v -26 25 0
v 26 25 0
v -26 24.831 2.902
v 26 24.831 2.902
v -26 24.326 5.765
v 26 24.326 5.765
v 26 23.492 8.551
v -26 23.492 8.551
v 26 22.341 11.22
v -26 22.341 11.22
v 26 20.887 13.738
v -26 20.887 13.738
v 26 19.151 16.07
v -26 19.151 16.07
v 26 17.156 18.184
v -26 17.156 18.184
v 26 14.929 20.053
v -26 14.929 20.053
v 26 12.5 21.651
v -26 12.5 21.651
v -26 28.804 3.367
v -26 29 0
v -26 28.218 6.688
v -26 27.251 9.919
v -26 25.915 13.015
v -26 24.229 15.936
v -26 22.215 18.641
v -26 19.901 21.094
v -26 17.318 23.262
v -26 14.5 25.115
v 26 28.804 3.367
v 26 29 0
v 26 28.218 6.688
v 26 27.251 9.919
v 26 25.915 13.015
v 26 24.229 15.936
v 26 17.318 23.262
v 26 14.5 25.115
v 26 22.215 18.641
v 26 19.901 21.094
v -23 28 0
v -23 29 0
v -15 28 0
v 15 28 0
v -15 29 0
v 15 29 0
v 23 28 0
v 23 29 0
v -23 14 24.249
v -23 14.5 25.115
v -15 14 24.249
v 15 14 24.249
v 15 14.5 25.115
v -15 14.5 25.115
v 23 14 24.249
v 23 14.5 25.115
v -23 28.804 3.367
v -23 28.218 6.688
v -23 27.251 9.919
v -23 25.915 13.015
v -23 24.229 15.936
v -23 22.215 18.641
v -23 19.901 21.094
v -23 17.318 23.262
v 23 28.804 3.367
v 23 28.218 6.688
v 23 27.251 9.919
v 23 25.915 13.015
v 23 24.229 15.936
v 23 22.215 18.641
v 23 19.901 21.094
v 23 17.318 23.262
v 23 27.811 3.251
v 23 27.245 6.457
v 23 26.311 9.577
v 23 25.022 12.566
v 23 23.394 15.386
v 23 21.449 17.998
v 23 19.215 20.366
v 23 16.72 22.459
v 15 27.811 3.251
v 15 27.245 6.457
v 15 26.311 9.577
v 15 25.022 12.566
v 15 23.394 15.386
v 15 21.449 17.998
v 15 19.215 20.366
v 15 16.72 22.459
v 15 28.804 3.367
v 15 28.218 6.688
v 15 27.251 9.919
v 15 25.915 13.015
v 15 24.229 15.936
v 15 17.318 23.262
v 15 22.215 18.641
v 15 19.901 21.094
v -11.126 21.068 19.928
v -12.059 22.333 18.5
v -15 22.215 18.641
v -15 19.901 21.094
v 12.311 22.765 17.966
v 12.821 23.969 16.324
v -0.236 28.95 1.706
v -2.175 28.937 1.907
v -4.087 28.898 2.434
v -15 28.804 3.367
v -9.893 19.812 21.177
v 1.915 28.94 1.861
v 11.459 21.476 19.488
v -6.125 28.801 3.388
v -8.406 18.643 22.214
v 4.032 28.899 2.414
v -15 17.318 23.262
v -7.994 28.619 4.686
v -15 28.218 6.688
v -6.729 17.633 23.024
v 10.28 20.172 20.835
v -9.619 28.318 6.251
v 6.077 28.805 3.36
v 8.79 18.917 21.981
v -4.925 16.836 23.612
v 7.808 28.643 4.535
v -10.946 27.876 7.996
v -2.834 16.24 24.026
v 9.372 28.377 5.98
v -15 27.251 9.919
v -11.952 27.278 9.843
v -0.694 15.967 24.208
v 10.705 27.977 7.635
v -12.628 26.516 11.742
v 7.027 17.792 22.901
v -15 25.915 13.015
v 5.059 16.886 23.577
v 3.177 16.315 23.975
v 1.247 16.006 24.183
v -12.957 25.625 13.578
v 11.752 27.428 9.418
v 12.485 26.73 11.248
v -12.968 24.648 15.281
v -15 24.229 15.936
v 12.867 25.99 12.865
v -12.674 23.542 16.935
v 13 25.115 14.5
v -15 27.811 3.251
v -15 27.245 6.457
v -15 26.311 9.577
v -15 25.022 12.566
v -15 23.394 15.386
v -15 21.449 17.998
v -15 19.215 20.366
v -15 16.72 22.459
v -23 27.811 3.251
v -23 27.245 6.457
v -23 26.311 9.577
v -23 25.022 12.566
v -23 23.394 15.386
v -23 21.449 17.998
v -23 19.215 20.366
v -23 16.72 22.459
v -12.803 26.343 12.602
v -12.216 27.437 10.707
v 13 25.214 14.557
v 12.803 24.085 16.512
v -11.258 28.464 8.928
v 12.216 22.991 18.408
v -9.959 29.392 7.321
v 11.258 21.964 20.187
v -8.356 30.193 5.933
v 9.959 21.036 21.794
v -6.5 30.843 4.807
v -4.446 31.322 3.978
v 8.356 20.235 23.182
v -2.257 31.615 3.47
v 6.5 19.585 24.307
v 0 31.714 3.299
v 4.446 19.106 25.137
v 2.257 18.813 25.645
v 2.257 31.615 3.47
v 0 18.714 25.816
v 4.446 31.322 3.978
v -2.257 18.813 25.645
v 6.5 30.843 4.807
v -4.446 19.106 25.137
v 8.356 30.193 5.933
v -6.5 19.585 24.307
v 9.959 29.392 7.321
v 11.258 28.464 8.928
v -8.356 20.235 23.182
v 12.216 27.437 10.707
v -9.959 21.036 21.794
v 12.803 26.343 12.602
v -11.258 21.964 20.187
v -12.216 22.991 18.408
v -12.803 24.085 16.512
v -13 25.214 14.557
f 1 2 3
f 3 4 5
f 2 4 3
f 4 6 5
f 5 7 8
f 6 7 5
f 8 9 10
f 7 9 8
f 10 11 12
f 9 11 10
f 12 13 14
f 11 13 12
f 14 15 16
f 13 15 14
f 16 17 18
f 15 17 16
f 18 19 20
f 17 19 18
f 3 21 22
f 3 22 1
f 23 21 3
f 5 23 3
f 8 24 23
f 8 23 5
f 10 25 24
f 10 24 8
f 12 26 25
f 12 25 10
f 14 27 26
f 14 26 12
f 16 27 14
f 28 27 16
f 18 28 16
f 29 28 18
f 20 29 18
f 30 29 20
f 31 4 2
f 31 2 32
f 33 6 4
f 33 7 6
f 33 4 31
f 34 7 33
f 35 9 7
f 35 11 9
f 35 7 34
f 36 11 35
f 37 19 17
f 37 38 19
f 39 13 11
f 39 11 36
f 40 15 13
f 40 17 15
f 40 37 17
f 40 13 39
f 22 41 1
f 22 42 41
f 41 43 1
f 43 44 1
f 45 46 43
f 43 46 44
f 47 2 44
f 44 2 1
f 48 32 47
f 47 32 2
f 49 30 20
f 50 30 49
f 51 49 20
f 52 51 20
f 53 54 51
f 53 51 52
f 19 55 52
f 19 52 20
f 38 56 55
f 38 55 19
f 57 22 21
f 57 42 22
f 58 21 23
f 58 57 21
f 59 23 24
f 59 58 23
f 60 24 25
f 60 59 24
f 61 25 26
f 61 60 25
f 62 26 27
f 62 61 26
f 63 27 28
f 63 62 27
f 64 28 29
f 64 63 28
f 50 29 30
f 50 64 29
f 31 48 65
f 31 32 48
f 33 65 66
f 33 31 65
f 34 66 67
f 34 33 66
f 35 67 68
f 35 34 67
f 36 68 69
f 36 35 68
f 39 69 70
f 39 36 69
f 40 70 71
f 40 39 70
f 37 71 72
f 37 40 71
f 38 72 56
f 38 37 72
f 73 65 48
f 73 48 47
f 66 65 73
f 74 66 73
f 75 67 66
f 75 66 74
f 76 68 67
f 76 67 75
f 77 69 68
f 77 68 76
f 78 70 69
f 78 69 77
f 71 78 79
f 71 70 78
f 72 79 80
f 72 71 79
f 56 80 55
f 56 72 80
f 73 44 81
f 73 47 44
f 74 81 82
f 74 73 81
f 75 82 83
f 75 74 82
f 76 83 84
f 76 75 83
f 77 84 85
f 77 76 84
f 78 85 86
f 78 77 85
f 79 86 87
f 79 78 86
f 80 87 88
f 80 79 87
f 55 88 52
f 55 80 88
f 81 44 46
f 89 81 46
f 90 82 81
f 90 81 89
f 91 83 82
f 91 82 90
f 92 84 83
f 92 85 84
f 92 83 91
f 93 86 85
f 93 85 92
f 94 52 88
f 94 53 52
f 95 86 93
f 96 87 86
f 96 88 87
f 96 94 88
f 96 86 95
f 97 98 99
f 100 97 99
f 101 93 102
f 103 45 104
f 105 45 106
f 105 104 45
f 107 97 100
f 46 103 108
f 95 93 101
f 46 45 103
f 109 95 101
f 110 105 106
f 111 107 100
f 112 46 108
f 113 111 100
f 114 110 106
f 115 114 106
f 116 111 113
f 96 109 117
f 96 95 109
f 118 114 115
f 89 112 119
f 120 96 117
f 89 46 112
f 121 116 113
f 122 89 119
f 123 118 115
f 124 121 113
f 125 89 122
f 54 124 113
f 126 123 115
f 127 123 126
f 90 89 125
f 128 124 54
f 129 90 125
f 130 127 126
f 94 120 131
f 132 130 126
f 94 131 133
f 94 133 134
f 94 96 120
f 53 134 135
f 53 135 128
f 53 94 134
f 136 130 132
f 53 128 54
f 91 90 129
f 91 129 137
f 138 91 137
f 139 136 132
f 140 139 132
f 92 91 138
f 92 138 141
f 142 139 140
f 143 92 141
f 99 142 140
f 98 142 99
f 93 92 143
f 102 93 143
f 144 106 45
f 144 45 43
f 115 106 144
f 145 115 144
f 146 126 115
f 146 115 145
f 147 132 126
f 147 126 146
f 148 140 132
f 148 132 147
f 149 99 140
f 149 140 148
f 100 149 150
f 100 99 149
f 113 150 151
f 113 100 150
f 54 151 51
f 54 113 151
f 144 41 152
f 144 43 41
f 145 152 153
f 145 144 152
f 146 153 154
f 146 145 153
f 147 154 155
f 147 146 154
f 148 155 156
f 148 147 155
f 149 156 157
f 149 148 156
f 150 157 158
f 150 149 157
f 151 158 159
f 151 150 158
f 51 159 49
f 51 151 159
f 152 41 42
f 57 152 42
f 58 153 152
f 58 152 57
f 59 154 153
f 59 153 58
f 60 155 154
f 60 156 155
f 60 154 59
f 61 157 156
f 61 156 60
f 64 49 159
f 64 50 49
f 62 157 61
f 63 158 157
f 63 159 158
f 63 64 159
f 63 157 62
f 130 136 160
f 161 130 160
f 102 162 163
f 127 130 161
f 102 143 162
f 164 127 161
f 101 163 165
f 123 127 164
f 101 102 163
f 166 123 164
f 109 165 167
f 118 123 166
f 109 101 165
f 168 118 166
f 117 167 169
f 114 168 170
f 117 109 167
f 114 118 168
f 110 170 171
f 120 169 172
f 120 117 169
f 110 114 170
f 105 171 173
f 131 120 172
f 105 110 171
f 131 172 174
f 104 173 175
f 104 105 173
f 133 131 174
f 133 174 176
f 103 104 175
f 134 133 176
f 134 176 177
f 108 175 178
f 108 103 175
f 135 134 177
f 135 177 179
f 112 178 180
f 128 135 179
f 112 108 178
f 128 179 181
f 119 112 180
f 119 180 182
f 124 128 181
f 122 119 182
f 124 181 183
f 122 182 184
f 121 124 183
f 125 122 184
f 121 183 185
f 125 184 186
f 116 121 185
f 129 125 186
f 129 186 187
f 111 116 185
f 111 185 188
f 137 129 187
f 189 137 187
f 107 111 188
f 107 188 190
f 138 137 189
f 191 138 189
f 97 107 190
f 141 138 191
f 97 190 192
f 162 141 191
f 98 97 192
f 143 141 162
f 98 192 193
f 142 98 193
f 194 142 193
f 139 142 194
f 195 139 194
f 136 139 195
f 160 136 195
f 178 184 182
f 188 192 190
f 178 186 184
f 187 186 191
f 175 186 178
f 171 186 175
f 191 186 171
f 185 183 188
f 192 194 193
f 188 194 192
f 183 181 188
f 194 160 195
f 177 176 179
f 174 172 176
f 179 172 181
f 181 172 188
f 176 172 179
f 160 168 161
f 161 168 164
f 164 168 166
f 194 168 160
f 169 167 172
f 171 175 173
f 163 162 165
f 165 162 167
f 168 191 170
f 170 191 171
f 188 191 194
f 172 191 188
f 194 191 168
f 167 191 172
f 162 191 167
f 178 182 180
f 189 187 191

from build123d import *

# Parameters (mm, degrees)
REVOLUTION_ANGLE = 60
SKETCH001_R      = 13
PAD_DEPTH        = 4


with BuildPart() as part:
    # Sketch → Revolution (revolve)
    with BuildSketch(Plane.XY):
        Polygon((-26, 25), (26, 25), (26, 29), (23, 29), (23, 28), (15, 28), (15, 29), (-15, 29), (-15, 28), (-23, 28), (-23, 29), (-26, 29), align=None)
    revolve(axis=Axis((0, 0, 0), (1, 0, 0)), revolution_arc=REVOLUTION_ANGLE)

    # Sketch001 (on DatumPlane) → Pad (new body)
    with BuildSketch(Plane(origin=(0.333333, 24.166667, 8.371579), x_dir=(1, 0, 0), z_dir=(0, -0.866025, -0.5))):
        with Locations((-0.333333, 4.833333)):
            Circle(SKETCH001_R)
    extrude(amount=-PAD_DEPTH)


solid = part.part
